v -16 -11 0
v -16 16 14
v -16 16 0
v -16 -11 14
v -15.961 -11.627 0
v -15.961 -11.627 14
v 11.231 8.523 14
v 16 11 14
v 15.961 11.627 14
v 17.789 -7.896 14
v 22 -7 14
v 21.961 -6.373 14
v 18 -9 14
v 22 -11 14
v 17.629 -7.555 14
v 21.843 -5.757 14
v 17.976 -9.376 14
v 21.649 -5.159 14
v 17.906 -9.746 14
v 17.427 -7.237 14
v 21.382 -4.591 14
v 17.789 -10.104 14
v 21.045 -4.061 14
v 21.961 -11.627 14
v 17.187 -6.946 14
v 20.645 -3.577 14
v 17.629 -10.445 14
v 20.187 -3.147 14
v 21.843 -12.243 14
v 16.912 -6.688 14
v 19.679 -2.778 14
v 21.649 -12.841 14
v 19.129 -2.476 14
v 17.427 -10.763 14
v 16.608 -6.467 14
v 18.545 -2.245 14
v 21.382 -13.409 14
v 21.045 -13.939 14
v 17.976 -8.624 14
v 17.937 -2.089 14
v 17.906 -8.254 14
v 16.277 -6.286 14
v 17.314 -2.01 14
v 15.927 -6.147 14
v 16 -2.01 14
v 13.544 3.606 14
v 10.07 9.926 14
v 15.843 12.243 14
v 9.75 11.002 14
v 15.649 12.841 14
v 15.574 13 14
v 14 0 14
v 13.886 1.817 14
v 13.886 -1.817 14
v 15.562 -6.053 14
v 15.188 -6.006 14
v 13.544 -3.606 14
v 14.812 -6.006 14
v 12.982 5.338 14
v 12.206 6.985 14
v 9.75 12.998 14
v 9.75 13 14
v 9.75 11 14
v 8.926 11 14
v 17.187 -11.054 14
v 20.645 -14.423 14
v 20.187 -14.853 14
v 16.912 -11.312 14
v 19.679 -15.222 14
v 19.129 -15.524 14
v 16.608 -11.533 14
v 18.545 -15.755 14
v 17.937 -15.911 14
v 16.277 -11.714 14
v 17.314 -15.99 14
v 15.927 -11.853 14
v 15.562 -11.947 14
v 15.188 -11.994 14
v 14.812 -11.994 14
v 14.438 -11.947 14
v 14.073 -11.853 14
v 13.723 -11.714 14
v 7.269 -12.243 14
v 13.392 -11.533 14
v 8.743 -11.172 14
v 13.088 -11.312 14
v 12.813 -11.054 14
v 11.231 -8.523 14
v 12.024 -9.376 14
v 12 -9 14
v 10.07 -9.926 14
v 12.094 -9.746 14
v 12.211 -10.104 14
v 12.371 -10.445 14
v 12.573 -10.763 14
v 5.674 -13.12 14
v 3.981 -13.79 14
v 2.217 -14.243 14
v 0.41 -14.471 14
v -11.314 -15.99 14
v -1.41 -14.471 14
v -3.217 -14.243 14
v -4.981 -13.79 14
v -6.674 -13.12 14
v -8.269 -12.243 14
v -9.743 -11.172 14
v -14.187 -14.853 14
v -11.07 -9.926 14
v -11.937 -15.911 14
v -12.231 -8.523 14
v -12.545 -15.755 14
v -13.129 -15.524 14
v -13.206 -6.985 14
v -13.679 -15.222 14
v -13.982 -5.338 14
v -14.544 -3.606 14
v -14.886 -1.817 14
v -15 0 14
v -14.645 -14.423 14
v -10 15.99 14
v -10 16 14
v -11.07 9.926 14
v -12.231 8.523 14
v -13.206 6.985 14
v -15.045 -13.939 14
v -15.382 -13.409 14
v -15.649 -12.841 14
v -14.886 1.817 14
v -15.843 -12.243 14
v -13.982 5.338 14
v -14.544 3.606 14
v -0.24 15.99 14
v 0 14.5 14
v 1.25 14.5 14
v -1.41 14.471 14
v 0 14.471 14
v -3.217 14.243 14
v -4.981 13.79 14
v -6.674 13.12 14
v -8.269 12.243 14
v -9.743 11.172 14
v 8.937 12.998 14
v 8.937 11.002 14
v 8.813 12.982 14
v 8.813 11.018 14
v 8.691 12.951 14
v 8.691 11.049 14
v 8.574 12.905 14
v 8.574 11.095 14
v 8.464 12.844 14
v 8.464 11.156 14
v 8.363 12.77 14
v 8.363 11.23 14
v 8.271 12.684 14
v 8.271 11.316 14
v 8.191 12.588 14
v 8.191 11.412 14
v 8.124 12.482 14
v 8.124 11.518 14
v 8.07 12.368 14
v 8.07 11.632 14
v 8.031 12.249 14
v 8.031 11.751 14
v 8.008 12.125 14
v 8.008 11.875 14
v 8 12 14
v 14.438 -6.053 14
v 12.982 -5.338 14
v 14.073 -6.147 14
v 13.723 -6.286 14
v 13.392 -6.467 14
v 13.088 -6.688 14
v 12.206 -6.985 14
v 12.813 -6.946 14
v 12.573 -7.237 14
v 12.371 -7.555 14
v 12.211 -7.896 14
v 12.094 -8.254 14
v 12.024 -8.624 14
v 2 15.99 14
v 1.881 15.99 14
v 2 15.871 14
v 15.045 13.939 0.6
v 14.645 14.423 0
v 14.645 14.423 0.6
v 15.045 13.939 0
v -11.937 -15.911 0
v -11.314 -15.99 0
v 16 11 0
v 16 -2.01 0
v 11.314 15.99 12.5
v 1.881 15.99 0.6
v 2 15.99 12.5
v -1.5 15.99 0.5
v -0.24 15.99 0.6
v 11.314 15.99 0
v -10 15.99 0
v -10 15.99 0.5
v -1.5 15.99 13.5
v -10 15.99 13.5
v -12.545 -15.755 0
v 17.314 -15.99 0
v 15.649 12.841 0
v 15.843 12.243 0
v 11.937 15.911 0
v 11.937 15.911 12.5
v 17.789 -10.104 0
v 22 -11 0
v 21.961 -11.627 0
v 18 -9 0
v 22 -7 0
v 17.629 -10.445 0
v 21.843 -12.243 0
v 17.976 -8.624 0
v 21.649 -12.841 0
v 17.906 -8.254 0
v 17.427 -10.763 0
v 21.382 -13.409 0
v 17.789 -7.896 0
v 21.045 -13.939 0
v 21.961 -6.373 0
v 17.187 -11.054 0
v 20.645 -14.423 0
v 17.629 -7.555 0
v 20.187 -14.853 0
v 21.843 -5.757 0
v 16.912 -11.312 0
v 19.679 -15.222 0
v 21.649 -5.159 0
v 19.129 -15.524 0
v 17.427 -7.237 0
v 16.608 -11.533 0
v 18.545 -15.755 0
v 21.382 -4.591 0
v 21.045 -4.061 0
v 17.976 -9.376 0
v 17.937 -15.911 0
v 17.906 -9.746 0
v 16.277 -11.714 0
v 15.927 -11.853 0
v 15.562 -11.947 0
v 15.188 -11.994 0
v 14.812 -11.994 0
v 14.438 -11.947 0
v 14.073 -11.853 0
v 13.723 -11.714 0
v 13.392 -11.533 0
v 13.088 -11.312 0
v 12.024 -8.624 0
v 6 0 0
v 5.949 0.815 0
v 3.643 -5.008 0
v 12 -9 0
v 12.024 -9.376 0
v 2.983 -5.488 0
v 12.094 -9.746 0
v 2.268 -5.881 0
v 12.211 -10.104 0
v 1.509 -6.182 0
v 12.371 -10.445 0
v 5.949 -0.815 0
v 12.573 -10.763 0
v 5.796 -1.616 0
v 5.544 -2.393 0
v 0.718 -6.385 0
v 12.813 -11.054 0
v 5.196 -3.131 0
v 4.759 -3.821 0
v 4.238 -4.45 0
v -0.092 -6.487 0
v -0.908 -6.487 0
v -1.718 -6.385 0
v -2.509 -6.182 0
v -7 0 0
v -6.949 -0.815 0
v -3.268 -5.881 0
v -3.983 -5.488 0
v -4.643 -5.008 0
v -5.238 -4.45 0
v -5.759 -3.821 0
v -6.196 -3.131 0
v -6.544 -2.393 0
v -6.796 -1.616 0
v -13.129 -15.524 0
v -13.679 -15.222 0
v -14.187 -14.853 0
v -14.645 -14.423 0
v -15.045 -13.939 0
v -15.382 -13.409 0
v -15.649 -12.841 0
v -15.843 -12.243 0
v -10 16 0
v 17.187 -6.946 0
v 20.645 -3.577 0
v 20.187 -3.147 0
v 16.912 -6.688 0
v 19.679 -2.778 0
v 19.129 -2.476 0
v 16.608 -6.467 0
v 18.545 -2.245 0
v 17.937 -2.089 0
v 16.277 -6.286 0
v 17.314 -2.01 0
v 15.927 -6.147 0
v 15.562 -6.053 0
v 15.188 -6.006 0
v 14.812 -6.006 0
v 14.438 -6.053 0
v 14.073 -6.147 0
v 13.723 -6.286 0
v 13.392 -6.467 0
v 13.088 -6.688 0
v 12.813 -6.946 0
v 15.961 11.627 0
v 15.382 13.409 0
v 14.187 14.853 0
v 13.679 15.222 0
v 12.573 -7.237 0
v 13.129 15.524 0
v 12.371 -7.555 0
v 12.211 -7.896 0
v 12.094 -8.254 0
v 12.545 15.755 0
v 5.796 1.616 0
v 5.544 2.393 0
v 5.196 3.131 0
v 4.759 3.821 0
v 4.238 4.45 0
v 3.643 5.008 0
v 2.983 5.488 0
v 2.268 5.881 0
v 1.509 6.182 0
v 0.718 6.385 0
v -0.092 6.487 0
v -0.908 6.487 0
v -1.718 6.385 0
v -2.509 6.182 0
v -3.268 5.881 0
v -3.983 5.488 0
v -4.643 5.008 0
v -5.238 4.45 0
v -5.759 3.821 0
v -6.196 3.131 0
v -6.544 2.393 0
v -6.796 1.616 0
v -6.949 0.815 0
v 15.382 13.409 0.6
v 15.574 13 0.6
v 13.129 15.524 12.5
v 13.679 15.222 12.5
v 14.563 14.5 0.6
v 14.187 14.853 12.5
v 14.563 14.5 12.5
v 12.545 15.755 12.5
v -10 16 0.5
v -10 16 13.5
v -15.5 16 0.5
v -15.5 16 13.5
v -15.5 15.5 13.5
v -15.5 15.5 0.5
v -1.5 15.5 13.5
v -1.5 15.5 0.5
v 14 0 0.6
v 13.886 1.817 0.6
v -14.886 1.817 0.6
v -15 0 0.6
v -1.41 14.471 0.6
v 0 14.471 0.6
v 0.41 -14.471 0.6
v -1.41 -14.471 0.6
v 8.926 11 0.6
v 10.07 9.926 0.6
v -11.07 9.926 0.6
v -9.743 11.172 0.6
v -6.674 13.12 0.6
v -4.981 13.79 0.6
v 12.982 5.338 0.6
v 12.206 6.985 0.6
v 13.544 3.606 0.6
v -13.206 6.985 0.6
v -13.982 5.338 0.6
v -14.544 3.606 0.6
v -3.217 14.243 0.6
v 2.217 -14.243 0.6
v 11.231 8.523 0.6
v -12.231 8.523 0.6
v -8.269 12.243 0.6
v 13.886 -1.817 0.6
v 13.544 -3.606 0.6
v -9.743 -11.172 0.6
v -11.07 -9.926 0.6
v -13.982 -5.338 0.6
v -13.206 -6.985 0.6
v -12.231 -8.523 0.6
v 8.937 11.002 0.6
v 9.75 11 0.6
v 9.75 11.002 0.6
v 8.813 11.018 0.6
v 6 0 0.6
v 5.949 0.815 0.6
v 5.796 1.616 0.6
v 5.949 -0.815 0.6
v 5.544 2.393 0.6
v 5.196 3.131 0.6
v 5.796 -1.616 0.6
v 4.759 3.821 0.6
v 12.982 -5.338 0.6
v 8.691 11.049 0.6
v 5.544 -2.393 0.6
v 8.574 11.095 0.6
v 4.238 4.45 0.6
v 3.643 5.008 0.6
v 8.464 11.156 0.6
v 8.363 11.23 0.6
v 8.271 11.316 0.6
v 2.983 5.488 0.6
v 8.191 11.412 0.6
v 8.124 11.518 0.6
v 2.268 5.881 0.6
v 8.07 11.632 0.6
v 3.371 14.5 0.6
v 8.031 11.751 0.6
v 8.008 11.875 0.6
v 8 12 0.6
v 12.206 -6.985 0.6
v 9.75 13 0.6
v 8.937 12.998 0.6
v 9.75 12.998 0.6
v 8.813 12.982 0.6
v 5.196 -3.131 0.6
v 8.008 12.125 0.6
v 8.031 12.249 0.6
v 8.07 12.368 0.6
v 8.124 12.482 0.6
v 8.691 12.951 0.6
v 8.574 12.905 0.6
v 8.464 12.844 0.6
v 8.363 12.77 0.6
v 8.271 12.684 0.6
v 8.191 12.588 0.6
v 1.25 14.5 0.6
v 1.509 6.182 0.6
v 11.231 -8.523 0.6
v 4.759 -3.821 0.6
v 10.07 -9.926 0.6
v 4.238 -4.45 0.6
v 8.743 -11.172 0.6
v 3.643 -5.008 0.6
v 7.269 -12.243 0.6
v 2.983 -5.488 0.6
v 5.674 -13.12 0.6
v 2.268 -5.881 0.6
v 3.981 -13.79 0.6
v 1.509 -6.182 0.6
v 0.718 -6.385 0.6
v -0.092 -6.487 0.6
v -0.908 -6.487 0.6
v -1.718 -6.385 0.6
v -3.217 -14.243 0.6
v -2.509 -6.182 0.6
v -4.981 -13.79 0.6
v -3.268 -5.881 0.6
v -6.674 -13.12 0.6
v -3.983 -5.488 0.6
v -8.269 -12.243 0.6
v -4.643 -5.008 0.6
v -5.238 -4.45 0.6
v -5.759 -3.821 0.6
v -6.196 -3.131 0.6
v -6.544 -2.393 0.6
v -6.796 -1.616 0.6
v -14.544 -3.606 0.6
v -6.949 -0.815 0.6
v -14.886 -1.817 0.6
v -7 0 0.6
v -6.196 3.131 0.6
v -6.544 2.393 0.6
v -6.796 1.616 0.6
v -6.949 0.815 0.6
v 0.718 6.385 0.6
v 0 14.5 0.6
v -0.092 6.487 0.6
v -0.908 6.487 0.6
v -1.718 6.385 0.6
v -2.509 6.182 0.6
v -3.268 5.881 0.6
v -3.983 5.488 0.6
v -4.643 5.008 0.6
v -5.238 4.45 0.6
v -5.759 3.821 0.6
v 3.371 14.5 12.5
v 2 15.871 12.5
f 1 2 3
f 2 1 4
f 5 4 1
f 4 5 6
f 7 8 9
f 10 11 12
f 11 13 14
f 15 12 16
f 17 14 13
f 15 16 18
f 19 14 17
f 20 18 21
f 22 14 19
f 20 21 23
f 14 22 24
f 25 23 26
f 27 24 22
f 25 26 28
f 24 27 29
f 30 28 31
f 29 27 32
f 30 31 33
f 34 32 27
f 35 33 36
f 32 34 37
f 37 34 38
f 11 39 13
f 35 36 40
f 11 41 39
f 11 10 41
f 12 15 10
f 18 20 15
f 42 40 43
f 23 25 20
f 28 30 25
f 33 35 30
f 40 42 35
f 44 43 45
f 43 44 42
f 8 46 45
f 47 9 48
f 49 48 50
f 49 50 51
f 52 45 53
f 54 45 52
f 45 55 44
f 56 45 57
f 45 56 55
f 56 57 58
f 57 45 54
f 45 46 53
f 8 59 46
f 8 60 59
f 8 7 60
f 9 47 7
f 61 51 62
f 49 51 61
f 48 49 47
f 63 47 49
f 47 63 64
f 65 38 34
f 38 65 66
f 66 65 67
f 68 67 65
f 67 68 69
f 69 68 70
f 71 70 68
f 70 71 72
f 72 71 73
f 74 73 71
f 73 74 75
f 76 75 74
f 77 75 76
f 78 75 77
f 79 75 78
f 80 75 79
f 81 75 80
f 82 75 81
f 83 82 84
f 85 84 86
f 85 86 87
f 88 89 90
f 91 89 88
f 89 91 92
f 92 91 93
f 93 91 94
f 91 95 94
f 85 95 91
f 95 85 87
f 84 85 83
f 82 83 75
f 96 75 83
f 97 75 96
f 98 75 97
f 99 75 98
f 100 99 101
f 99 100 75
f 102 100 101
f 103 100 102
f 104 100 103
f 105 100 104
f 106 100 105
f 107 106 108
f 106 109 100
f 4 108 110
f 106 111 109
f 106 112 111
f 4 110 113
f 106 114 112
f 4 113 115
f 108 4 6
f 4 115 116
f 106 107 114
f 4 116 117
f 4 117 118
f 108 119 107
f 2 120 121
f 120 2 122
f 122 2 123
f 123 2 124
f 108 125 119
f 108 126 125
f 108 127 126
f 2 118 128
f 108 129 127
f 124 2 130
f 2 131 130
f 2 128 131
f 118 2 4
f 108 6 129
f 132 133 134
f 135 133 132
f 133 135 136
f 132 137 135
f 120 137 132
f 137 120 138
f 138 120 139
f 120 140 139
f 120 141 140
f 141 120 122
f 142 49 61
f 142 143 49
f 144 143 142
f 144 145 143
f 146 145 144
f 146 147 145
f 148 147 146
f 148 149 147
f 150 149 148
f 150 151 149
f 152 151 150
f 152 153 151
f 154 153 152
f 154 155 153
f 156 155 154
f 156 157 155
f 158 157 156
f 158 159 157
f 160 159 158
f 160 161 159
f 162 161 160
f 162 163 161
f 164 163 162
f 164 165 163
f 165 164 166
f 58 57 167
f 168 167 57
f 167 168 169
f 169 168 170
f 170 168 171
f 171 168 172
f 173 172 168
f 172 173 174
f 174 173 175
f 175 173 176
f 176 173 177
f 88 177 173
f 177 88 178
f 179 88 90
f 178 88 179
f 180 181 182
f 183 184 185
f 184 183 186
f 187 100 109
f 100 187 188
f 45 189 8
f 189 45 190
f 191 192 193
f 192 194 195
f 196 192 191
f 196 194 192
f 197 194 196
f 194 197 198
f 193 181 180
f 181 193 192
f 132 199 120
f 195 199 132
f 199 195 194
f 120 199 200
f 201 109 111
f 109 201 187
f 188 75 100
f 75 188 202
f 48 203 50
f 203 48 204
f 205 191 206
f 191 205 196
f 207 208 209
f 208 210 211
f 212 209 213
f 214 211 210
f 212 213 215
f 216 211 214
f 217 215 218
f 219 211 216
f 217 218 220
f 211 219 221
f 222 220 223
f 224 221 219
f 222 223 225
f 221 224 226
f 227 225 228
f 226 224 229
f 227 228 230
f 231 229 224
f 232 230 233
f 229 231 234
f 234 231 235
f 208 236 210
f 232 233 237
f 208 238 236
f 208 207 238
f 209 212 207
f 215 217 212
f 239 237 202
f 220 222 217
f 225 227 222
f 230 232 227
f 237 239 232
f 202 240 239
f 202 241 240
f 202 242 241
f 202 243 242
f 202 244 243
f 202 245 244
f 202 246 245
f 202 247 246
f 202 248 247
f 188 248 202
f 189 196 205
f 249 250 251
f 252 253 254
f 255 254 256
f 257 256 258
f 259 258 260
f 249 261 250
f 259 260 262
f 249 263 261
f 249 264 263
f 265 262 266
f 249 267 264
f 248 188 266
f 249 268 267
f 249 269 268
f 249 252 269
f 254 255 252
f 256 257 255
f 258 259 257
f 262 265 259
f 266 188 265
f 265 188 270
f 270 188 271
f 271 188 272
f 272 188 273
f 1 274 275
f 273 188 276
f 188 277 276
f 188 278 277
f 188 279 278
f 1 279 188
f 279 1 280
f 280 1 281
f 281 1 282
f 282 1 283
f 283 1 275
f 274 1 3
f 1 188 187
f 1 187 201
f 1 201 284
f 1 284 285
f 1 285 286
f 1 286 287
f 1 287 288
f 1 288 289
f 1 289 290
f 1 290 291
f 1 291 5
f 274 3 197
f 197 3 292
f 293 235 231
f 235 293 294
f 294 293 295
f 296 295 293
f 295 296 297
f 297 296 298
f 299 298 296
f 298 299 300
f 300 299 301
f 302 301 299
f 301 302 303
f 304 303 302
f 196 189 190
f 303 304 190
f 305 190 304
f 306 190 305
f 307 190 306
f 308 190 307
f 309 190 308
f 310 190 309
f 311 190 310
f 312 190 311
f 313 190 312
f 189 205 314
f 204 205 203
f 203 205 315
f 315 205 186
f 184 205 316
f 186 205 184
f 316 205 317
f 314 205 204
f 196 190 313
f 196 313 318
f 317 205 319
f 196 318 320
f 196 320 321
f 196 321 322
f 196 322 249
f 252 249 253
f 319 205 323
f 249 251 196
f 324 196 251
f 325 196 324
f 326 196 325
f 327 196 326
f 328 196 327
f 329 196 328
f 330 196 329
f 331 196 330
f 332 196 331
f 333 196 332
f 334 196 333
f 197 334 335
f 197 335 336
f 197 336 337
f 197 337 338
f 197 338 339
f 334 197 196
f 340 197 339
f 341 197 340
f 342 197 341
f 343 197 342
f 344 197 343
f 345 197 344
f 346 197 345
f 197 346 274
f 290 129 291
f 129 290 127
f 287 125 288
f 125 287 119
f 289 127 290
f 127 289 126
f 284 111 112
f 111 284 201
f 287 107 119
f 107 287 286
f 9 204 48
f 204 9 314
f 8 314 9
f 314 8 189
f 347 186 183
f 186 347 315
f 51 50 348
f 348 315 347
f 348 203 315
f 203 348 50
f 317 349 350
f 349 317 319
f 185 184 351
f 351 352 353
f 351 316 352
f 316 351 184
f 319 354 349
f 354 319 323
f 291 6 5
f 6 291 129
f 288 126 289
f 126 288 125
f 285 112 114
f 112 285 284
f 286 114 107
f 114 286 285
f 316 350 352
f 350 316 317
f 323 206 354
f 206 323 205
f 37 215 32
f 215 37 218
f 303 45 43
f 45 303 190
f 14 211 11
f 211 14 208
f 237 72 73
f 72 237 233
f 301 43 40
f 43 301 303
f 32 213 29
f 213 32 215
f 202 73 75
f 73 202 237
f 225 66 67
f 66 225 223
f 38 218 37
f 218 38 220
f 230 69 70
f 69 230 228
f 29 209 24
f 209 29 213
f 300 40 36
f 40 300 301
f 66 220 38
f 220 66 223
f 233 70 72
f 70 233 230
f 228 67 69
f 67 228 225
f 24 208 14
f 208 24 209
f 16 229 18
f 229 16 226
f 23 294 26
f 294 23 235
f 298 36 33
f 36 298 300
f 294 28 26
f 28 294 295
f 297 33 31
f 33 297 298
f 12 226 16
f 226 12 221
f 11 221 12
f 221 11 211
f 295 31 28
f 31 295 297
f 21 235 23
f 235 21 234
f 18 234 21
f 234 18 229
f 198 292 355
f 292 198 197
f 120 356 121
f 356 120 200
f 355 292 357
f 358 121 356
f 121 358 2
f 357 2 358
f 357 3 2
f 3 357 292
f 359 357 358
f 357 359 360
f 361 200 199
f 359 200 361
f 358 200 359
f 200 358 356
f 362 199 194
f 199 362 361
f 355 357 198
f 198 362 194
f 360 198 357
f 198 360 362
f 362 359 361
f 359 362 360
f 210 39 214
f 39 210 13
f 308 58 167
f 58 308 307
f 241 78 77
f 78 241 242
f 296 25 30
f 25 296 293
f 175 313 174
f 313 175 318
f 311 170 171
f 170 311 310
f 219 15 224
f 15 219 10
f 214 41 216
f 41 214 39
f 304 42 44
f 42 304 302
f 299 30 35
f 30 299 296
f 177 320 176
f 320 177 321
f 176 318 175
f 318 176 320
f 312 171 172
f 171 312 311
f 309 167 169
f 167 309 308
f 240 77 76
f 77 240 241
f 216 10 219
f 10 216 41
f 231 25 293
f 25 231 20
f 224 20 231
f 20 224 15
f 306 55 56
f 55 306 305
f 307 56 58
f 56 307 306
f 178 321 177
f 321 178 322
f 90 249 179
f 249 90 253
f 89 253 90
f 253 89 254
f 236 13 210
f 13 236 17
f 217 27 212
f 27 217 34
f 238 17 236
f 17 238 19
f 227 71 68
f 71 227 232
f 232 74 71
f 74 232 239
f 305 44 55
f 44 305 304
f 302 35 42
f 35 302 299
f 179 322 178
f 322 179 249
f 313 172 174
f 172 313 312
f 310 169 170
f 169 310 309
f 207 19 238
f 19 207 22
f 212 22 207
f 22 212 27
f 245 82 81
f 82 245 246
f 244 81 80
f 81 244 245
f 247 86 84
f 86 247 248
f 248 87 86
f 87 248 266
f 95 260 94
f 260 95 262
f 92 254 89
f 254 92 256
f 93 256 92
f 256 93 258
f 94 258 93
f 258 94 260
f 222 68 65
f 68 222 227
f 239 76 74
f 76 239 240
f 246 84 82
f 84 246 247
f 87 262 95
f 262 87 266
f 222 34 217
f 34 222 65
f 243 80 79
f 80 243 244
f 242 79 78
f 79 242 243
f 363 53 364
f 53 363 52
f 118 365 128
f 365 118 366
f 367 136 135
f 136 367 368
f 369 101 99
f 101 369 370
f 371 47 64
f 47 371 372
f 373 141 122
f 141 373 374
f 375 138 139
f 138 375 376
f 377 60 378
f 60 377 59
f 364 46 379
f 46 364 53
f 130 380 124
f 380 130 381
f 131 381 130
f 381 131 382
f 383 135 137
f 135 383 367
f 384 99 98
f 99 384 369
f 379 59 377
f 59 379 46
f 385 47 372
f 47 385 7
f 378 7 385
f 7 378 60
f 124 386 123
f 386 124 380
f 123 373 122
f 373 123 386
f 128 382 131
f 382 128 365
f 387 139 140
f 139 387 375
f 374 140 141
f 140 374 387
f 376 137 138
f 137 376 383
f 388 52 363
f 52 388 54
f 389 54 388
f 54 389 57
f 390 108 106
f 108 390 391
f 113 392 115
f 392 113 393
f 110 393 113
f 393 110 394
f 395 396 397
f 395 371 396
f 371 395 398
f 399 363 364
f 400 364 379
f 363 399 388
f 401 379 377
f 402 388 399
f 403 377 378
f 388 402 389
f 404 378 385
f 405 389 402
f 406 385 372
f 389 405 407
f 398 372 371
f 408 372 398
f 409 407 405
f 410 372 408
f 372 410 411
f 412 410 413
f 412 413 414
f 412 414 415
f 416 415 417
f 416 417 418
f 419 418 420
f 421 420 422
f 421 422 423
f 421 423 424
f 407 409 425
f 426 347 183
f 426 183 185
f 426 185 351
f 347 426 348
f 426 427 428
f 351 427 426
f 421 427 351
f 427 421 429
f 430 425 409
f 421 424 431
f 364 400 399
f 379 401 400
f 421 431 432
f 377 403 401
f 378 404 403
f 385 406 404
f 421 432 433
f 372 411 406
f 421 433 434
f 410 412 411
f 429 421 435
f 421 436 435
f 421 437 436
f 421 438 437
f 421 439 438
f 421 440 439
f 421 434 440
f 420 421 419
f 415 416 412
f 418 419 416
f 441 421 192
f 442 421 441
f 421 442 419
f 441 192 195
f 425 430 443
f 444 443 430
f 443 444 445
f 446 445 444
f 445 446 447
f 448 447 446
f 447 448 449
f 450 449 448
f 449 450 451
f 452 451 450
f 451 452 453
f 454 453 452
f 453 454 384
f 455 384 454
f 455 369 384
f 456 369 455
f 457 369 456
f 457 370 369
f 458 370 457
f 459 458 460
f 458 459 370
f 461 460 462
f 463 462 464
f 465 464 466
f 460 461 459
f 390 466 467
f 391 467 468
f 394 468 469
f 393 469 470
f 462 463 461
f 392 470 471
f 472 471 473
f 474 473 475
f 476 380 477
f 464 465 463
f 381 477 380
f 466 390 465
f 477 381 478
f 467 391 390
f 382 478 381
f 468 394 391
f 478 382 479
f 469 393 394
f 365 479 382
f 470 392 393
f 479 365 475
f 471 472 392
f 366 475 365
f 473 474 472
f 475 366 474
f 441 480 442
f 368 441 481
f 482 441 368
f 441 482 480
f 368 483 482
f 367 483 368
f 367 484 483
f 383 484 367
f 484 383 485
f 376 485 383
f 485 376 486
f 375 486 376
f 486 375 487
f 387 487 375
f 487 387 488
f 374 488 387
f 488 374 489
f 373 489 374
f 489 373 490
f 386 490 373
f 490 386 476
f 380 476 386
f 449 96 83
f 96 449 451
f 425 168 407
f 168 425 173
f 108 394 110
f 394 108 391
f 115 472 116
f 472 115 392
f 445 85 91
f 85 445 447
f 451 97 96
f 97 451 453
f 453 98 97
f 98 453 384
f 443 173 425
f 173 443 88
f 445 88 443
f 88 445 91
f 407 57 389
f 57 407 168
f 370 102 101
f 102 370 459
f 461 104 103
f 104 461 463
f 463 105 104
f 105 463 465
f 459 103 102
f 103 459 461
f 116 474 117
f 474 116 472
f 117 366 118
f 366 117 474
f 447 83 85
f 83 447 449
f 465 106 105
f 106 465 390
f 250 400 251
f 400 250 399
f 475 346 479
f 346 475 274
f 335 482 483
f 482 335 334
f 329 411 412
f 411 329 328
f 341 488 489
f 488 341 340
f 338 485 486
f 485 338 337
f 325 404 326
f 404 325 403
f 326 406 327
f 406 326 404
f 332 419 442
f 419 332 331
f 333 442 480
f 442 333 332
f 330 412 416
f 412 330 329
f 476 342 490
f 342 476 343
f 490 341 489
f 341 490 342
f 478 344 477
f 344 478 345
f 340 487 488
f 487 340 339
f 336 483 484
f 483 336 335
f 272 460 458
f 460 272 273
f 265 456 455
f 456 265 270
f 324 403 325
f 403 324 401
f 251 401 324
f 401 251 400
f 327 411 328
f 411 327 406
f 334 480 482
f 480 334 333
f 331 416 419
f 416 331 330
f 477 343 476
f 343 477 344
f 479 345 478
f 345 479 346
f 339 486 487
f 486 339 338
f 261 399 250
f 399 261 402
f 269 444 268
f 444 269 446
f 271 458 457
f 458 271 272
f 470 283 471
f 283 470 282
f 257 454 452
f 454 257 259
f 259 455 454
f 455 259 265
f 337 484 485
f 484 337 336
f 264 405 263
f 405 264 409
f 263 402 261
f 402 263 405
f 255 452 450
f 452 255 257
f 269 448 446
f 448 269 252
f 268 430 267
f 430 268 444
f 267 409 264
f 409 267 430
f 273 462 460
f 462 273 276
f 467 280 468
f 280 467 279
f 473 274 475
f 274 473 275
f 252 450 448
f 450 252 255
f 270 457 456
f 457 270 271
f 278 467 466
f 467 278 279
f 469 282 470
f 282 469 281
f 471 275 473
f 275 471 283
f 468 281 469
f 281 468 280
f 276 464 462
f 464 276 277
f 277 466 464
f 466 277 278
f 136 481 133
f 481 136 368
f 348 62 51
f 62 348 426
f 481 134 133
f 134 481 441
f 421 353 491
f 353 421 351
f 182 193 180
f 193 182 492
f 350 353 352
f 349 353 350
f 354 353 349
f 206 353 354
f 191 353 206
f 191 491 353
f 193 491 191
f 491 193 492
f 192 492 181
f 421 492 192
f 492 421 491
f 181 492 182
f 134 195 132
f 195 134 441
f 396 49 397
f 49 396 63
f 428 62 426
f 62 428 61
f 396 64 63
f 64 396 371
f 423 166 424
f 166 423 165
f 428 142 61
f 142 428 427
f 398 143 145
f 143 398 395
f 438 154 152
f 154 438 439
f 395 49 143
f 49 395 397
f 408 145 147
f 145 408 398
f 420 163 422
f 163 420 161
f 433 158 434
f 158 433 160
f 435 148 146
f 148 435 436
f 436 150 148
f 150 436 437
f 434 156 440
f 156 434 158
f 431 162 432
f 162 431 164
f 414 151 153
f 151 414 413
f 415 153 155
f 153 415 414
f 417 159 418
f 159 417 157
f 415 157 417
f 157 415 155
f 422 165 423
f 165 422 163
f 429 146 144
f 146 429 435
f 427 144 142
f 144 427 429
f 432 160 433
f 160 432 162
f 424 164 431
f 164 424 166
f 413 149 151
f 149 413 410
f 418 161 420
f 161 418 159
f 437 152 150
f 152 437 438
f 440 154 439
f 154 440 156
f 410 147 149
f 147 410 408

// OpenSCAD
$fn = 50;


union() {
	difference() {
		union() {
			translate(v = [0, 0, 0]) {
				rotate(a = [0, 0, 0]) {
					hull() {
						translate(v = [-11.0000000000, 11.0000000000, 0]) {
							rotate(a = [0, 0, 0]) {
								translate(v = [0, 0, 0]) {
									rotate(a = [0, 0, 0]) {
										cylinder(h = 14, r = 5);
									}
								}
							}
						}
						translate(v = [11.0000000000, 11.0000000000, 0]) {
							rotate(a = [0, 0, 0]) {
								translate(v = [0, 0, 0]) {
									rotate(a = [0, 0, 0]) {
										cylinder(h = 14, r = 5);
									}
								}
							}
						}
						translate(v = [-11.0000000000, -11.0000000000, 0]) {
							rotate(a = [0, 0, 0]) {
								translate(v = [0, 0, 0]) {
									rotate(a = [0, 0, 0]) {
										cylinder(h = 14, r = 5);
									}
								}
							}
						}
						translate(v = [11.0000000000, -11.0000000000, 0]) {
							rotate(a = [0, 0, 0]) {
								translate(v = [0, 0, 0]) {
									rotate(a = [0, 0, 0]) {
										cylinder(h = 14, r = 5);
									}
								}
							}
						}
					}
				}
			}
			translate(v = [7.5000000000, -9.0000000000, 0]) {
				rotate(a = [0, 0, 0]) {
					hull() {
						translate(v = [-9.5000000000, 2.0000000000, 0]) {
							rotate(a = [0, 0, 0]) {
								translate(v = [0, 0, 0]) {
									rotate(a = [0, 0, 0]) {
										cylinder(h = 14, r = 5);
									}
								}
							}
						}
						translate(v = [9.5000000000, 2.0000000000, 0]) {
							rotate(a = [0, 0, 0]) {
								translate(v = [0, 0, 0]) {
									rotate(a = [0, 0, 0]) {
										cylinder(h = 14, r = 5);
									}
								}
							}
						}
						translate(v = [-9.5000000000, -2.0000000000, 0]) {
							rotate(a = [0, 0, 0]) {
								translate(v = [0, 0, 0]) {
									rotate(a = [0, 0, 0]) {
										cylinder(h = 14, r = 5);
									}
								}
							}
						}
						translate(v = [9.5000000000, -2.0000000000, 0]) {
							rotate(a = [0, 0, 0]) {
								translate(v = [0, 0, 0]) {
									rotate(a = [0, 0, 0]) {
										cylinder(h = 14, r = 5);
									}
								}
							}
						}
					}
				}
			}
			translate(v = [-16.0000000000, 10.0000000000, 0]) {
				rotate(a = [0, 0, 0]) {
					cube(size = [6, 6, 14]);
				}
			}
		}
		union() {
			translate(v = [-15.5000000000, 15.5000000000, 0.5000000000]) {
				rotate(a = [0, 0, 0]) {
					cube(size = [14, 0.5000000000, 13.0000000000]);
				}
			}
			translate(v = [15.0000000000, -9.0000000000, -125.0000000000]) {
				rotate(a = [0, 0, 0]) {
					cylinder(h = 250, r = 3.0000000000);
				}
			}
			translate(v = [-0.5000000000, 0.0000000000, 0.6000000000]) {
				rotate(a = [0, 0, 0]) {
					cylinder(h = 16.4000000000, r = 14.5000000000);
				}
			}
			translate(v = [-0.5000000000, 0.0000000000, -7.0000000000]) {
				rotate(a = [0, 0, 0]) {
					cylinder(h = 14, r = 6.5000000000);
				}
			}
			translate(v = [0.0000000000, 13.0000000000, 0.6000000000]) {
				rotate(a = [0, 0, 0]) {
					cube(size = [16.0000000000, 1.5000000000, 16.4000000000]);
				}
			}
			translate(v = [2.0000000000, 13.0000000000, 12.5000000000]) {
				rotate(a = [0, 0, 0]) {
					cube(size = [14.0000000000, 4.5000000000, 1.5000000000]);
				}
			}
			translate(v = [-3.0000000000, 18.7500000000, 0.6000000000]) {
				rotate(a = [0, 0, -45]) {
					cube(size = [10, 1.5000000000, 16.4000000000]);
				}
			}
			translate(v = [2.2500000000, 11.0000000000, 0.6000000000]) {
				rotate(a = [0, 0, 0]) {
					cube(size = [7.5000000000, 2, 13.4000000000]);
				}
			}
		}
	}
	union() {
		translate(v = [11.5000000000, 12, 0]) {
			rotate(a = [0, 0, 0]) {
				hull() {
					translate(v = [2.5000000000, 0, 0]) {
						rotate(a = [0, 0, 0]) {
							translate(v = [0, 0, 0]) {
								rotate(a = [0, 0, 0]) {
									cylinder(h = 14, r = 1.0000000000);
								}
							}
						}
					}
					translate(v = [-2.5000000000, 0, 0]) {
						rotate(a = [0, 0, 0]) {
							translate(v = [0, 0, 0]) {
								rotate(a = [0, 0, 0]) {
									cylinder(h = 14, r = 1.0000000000);
								}
							}
						}
					}
				}
			}
		}
	}
}
